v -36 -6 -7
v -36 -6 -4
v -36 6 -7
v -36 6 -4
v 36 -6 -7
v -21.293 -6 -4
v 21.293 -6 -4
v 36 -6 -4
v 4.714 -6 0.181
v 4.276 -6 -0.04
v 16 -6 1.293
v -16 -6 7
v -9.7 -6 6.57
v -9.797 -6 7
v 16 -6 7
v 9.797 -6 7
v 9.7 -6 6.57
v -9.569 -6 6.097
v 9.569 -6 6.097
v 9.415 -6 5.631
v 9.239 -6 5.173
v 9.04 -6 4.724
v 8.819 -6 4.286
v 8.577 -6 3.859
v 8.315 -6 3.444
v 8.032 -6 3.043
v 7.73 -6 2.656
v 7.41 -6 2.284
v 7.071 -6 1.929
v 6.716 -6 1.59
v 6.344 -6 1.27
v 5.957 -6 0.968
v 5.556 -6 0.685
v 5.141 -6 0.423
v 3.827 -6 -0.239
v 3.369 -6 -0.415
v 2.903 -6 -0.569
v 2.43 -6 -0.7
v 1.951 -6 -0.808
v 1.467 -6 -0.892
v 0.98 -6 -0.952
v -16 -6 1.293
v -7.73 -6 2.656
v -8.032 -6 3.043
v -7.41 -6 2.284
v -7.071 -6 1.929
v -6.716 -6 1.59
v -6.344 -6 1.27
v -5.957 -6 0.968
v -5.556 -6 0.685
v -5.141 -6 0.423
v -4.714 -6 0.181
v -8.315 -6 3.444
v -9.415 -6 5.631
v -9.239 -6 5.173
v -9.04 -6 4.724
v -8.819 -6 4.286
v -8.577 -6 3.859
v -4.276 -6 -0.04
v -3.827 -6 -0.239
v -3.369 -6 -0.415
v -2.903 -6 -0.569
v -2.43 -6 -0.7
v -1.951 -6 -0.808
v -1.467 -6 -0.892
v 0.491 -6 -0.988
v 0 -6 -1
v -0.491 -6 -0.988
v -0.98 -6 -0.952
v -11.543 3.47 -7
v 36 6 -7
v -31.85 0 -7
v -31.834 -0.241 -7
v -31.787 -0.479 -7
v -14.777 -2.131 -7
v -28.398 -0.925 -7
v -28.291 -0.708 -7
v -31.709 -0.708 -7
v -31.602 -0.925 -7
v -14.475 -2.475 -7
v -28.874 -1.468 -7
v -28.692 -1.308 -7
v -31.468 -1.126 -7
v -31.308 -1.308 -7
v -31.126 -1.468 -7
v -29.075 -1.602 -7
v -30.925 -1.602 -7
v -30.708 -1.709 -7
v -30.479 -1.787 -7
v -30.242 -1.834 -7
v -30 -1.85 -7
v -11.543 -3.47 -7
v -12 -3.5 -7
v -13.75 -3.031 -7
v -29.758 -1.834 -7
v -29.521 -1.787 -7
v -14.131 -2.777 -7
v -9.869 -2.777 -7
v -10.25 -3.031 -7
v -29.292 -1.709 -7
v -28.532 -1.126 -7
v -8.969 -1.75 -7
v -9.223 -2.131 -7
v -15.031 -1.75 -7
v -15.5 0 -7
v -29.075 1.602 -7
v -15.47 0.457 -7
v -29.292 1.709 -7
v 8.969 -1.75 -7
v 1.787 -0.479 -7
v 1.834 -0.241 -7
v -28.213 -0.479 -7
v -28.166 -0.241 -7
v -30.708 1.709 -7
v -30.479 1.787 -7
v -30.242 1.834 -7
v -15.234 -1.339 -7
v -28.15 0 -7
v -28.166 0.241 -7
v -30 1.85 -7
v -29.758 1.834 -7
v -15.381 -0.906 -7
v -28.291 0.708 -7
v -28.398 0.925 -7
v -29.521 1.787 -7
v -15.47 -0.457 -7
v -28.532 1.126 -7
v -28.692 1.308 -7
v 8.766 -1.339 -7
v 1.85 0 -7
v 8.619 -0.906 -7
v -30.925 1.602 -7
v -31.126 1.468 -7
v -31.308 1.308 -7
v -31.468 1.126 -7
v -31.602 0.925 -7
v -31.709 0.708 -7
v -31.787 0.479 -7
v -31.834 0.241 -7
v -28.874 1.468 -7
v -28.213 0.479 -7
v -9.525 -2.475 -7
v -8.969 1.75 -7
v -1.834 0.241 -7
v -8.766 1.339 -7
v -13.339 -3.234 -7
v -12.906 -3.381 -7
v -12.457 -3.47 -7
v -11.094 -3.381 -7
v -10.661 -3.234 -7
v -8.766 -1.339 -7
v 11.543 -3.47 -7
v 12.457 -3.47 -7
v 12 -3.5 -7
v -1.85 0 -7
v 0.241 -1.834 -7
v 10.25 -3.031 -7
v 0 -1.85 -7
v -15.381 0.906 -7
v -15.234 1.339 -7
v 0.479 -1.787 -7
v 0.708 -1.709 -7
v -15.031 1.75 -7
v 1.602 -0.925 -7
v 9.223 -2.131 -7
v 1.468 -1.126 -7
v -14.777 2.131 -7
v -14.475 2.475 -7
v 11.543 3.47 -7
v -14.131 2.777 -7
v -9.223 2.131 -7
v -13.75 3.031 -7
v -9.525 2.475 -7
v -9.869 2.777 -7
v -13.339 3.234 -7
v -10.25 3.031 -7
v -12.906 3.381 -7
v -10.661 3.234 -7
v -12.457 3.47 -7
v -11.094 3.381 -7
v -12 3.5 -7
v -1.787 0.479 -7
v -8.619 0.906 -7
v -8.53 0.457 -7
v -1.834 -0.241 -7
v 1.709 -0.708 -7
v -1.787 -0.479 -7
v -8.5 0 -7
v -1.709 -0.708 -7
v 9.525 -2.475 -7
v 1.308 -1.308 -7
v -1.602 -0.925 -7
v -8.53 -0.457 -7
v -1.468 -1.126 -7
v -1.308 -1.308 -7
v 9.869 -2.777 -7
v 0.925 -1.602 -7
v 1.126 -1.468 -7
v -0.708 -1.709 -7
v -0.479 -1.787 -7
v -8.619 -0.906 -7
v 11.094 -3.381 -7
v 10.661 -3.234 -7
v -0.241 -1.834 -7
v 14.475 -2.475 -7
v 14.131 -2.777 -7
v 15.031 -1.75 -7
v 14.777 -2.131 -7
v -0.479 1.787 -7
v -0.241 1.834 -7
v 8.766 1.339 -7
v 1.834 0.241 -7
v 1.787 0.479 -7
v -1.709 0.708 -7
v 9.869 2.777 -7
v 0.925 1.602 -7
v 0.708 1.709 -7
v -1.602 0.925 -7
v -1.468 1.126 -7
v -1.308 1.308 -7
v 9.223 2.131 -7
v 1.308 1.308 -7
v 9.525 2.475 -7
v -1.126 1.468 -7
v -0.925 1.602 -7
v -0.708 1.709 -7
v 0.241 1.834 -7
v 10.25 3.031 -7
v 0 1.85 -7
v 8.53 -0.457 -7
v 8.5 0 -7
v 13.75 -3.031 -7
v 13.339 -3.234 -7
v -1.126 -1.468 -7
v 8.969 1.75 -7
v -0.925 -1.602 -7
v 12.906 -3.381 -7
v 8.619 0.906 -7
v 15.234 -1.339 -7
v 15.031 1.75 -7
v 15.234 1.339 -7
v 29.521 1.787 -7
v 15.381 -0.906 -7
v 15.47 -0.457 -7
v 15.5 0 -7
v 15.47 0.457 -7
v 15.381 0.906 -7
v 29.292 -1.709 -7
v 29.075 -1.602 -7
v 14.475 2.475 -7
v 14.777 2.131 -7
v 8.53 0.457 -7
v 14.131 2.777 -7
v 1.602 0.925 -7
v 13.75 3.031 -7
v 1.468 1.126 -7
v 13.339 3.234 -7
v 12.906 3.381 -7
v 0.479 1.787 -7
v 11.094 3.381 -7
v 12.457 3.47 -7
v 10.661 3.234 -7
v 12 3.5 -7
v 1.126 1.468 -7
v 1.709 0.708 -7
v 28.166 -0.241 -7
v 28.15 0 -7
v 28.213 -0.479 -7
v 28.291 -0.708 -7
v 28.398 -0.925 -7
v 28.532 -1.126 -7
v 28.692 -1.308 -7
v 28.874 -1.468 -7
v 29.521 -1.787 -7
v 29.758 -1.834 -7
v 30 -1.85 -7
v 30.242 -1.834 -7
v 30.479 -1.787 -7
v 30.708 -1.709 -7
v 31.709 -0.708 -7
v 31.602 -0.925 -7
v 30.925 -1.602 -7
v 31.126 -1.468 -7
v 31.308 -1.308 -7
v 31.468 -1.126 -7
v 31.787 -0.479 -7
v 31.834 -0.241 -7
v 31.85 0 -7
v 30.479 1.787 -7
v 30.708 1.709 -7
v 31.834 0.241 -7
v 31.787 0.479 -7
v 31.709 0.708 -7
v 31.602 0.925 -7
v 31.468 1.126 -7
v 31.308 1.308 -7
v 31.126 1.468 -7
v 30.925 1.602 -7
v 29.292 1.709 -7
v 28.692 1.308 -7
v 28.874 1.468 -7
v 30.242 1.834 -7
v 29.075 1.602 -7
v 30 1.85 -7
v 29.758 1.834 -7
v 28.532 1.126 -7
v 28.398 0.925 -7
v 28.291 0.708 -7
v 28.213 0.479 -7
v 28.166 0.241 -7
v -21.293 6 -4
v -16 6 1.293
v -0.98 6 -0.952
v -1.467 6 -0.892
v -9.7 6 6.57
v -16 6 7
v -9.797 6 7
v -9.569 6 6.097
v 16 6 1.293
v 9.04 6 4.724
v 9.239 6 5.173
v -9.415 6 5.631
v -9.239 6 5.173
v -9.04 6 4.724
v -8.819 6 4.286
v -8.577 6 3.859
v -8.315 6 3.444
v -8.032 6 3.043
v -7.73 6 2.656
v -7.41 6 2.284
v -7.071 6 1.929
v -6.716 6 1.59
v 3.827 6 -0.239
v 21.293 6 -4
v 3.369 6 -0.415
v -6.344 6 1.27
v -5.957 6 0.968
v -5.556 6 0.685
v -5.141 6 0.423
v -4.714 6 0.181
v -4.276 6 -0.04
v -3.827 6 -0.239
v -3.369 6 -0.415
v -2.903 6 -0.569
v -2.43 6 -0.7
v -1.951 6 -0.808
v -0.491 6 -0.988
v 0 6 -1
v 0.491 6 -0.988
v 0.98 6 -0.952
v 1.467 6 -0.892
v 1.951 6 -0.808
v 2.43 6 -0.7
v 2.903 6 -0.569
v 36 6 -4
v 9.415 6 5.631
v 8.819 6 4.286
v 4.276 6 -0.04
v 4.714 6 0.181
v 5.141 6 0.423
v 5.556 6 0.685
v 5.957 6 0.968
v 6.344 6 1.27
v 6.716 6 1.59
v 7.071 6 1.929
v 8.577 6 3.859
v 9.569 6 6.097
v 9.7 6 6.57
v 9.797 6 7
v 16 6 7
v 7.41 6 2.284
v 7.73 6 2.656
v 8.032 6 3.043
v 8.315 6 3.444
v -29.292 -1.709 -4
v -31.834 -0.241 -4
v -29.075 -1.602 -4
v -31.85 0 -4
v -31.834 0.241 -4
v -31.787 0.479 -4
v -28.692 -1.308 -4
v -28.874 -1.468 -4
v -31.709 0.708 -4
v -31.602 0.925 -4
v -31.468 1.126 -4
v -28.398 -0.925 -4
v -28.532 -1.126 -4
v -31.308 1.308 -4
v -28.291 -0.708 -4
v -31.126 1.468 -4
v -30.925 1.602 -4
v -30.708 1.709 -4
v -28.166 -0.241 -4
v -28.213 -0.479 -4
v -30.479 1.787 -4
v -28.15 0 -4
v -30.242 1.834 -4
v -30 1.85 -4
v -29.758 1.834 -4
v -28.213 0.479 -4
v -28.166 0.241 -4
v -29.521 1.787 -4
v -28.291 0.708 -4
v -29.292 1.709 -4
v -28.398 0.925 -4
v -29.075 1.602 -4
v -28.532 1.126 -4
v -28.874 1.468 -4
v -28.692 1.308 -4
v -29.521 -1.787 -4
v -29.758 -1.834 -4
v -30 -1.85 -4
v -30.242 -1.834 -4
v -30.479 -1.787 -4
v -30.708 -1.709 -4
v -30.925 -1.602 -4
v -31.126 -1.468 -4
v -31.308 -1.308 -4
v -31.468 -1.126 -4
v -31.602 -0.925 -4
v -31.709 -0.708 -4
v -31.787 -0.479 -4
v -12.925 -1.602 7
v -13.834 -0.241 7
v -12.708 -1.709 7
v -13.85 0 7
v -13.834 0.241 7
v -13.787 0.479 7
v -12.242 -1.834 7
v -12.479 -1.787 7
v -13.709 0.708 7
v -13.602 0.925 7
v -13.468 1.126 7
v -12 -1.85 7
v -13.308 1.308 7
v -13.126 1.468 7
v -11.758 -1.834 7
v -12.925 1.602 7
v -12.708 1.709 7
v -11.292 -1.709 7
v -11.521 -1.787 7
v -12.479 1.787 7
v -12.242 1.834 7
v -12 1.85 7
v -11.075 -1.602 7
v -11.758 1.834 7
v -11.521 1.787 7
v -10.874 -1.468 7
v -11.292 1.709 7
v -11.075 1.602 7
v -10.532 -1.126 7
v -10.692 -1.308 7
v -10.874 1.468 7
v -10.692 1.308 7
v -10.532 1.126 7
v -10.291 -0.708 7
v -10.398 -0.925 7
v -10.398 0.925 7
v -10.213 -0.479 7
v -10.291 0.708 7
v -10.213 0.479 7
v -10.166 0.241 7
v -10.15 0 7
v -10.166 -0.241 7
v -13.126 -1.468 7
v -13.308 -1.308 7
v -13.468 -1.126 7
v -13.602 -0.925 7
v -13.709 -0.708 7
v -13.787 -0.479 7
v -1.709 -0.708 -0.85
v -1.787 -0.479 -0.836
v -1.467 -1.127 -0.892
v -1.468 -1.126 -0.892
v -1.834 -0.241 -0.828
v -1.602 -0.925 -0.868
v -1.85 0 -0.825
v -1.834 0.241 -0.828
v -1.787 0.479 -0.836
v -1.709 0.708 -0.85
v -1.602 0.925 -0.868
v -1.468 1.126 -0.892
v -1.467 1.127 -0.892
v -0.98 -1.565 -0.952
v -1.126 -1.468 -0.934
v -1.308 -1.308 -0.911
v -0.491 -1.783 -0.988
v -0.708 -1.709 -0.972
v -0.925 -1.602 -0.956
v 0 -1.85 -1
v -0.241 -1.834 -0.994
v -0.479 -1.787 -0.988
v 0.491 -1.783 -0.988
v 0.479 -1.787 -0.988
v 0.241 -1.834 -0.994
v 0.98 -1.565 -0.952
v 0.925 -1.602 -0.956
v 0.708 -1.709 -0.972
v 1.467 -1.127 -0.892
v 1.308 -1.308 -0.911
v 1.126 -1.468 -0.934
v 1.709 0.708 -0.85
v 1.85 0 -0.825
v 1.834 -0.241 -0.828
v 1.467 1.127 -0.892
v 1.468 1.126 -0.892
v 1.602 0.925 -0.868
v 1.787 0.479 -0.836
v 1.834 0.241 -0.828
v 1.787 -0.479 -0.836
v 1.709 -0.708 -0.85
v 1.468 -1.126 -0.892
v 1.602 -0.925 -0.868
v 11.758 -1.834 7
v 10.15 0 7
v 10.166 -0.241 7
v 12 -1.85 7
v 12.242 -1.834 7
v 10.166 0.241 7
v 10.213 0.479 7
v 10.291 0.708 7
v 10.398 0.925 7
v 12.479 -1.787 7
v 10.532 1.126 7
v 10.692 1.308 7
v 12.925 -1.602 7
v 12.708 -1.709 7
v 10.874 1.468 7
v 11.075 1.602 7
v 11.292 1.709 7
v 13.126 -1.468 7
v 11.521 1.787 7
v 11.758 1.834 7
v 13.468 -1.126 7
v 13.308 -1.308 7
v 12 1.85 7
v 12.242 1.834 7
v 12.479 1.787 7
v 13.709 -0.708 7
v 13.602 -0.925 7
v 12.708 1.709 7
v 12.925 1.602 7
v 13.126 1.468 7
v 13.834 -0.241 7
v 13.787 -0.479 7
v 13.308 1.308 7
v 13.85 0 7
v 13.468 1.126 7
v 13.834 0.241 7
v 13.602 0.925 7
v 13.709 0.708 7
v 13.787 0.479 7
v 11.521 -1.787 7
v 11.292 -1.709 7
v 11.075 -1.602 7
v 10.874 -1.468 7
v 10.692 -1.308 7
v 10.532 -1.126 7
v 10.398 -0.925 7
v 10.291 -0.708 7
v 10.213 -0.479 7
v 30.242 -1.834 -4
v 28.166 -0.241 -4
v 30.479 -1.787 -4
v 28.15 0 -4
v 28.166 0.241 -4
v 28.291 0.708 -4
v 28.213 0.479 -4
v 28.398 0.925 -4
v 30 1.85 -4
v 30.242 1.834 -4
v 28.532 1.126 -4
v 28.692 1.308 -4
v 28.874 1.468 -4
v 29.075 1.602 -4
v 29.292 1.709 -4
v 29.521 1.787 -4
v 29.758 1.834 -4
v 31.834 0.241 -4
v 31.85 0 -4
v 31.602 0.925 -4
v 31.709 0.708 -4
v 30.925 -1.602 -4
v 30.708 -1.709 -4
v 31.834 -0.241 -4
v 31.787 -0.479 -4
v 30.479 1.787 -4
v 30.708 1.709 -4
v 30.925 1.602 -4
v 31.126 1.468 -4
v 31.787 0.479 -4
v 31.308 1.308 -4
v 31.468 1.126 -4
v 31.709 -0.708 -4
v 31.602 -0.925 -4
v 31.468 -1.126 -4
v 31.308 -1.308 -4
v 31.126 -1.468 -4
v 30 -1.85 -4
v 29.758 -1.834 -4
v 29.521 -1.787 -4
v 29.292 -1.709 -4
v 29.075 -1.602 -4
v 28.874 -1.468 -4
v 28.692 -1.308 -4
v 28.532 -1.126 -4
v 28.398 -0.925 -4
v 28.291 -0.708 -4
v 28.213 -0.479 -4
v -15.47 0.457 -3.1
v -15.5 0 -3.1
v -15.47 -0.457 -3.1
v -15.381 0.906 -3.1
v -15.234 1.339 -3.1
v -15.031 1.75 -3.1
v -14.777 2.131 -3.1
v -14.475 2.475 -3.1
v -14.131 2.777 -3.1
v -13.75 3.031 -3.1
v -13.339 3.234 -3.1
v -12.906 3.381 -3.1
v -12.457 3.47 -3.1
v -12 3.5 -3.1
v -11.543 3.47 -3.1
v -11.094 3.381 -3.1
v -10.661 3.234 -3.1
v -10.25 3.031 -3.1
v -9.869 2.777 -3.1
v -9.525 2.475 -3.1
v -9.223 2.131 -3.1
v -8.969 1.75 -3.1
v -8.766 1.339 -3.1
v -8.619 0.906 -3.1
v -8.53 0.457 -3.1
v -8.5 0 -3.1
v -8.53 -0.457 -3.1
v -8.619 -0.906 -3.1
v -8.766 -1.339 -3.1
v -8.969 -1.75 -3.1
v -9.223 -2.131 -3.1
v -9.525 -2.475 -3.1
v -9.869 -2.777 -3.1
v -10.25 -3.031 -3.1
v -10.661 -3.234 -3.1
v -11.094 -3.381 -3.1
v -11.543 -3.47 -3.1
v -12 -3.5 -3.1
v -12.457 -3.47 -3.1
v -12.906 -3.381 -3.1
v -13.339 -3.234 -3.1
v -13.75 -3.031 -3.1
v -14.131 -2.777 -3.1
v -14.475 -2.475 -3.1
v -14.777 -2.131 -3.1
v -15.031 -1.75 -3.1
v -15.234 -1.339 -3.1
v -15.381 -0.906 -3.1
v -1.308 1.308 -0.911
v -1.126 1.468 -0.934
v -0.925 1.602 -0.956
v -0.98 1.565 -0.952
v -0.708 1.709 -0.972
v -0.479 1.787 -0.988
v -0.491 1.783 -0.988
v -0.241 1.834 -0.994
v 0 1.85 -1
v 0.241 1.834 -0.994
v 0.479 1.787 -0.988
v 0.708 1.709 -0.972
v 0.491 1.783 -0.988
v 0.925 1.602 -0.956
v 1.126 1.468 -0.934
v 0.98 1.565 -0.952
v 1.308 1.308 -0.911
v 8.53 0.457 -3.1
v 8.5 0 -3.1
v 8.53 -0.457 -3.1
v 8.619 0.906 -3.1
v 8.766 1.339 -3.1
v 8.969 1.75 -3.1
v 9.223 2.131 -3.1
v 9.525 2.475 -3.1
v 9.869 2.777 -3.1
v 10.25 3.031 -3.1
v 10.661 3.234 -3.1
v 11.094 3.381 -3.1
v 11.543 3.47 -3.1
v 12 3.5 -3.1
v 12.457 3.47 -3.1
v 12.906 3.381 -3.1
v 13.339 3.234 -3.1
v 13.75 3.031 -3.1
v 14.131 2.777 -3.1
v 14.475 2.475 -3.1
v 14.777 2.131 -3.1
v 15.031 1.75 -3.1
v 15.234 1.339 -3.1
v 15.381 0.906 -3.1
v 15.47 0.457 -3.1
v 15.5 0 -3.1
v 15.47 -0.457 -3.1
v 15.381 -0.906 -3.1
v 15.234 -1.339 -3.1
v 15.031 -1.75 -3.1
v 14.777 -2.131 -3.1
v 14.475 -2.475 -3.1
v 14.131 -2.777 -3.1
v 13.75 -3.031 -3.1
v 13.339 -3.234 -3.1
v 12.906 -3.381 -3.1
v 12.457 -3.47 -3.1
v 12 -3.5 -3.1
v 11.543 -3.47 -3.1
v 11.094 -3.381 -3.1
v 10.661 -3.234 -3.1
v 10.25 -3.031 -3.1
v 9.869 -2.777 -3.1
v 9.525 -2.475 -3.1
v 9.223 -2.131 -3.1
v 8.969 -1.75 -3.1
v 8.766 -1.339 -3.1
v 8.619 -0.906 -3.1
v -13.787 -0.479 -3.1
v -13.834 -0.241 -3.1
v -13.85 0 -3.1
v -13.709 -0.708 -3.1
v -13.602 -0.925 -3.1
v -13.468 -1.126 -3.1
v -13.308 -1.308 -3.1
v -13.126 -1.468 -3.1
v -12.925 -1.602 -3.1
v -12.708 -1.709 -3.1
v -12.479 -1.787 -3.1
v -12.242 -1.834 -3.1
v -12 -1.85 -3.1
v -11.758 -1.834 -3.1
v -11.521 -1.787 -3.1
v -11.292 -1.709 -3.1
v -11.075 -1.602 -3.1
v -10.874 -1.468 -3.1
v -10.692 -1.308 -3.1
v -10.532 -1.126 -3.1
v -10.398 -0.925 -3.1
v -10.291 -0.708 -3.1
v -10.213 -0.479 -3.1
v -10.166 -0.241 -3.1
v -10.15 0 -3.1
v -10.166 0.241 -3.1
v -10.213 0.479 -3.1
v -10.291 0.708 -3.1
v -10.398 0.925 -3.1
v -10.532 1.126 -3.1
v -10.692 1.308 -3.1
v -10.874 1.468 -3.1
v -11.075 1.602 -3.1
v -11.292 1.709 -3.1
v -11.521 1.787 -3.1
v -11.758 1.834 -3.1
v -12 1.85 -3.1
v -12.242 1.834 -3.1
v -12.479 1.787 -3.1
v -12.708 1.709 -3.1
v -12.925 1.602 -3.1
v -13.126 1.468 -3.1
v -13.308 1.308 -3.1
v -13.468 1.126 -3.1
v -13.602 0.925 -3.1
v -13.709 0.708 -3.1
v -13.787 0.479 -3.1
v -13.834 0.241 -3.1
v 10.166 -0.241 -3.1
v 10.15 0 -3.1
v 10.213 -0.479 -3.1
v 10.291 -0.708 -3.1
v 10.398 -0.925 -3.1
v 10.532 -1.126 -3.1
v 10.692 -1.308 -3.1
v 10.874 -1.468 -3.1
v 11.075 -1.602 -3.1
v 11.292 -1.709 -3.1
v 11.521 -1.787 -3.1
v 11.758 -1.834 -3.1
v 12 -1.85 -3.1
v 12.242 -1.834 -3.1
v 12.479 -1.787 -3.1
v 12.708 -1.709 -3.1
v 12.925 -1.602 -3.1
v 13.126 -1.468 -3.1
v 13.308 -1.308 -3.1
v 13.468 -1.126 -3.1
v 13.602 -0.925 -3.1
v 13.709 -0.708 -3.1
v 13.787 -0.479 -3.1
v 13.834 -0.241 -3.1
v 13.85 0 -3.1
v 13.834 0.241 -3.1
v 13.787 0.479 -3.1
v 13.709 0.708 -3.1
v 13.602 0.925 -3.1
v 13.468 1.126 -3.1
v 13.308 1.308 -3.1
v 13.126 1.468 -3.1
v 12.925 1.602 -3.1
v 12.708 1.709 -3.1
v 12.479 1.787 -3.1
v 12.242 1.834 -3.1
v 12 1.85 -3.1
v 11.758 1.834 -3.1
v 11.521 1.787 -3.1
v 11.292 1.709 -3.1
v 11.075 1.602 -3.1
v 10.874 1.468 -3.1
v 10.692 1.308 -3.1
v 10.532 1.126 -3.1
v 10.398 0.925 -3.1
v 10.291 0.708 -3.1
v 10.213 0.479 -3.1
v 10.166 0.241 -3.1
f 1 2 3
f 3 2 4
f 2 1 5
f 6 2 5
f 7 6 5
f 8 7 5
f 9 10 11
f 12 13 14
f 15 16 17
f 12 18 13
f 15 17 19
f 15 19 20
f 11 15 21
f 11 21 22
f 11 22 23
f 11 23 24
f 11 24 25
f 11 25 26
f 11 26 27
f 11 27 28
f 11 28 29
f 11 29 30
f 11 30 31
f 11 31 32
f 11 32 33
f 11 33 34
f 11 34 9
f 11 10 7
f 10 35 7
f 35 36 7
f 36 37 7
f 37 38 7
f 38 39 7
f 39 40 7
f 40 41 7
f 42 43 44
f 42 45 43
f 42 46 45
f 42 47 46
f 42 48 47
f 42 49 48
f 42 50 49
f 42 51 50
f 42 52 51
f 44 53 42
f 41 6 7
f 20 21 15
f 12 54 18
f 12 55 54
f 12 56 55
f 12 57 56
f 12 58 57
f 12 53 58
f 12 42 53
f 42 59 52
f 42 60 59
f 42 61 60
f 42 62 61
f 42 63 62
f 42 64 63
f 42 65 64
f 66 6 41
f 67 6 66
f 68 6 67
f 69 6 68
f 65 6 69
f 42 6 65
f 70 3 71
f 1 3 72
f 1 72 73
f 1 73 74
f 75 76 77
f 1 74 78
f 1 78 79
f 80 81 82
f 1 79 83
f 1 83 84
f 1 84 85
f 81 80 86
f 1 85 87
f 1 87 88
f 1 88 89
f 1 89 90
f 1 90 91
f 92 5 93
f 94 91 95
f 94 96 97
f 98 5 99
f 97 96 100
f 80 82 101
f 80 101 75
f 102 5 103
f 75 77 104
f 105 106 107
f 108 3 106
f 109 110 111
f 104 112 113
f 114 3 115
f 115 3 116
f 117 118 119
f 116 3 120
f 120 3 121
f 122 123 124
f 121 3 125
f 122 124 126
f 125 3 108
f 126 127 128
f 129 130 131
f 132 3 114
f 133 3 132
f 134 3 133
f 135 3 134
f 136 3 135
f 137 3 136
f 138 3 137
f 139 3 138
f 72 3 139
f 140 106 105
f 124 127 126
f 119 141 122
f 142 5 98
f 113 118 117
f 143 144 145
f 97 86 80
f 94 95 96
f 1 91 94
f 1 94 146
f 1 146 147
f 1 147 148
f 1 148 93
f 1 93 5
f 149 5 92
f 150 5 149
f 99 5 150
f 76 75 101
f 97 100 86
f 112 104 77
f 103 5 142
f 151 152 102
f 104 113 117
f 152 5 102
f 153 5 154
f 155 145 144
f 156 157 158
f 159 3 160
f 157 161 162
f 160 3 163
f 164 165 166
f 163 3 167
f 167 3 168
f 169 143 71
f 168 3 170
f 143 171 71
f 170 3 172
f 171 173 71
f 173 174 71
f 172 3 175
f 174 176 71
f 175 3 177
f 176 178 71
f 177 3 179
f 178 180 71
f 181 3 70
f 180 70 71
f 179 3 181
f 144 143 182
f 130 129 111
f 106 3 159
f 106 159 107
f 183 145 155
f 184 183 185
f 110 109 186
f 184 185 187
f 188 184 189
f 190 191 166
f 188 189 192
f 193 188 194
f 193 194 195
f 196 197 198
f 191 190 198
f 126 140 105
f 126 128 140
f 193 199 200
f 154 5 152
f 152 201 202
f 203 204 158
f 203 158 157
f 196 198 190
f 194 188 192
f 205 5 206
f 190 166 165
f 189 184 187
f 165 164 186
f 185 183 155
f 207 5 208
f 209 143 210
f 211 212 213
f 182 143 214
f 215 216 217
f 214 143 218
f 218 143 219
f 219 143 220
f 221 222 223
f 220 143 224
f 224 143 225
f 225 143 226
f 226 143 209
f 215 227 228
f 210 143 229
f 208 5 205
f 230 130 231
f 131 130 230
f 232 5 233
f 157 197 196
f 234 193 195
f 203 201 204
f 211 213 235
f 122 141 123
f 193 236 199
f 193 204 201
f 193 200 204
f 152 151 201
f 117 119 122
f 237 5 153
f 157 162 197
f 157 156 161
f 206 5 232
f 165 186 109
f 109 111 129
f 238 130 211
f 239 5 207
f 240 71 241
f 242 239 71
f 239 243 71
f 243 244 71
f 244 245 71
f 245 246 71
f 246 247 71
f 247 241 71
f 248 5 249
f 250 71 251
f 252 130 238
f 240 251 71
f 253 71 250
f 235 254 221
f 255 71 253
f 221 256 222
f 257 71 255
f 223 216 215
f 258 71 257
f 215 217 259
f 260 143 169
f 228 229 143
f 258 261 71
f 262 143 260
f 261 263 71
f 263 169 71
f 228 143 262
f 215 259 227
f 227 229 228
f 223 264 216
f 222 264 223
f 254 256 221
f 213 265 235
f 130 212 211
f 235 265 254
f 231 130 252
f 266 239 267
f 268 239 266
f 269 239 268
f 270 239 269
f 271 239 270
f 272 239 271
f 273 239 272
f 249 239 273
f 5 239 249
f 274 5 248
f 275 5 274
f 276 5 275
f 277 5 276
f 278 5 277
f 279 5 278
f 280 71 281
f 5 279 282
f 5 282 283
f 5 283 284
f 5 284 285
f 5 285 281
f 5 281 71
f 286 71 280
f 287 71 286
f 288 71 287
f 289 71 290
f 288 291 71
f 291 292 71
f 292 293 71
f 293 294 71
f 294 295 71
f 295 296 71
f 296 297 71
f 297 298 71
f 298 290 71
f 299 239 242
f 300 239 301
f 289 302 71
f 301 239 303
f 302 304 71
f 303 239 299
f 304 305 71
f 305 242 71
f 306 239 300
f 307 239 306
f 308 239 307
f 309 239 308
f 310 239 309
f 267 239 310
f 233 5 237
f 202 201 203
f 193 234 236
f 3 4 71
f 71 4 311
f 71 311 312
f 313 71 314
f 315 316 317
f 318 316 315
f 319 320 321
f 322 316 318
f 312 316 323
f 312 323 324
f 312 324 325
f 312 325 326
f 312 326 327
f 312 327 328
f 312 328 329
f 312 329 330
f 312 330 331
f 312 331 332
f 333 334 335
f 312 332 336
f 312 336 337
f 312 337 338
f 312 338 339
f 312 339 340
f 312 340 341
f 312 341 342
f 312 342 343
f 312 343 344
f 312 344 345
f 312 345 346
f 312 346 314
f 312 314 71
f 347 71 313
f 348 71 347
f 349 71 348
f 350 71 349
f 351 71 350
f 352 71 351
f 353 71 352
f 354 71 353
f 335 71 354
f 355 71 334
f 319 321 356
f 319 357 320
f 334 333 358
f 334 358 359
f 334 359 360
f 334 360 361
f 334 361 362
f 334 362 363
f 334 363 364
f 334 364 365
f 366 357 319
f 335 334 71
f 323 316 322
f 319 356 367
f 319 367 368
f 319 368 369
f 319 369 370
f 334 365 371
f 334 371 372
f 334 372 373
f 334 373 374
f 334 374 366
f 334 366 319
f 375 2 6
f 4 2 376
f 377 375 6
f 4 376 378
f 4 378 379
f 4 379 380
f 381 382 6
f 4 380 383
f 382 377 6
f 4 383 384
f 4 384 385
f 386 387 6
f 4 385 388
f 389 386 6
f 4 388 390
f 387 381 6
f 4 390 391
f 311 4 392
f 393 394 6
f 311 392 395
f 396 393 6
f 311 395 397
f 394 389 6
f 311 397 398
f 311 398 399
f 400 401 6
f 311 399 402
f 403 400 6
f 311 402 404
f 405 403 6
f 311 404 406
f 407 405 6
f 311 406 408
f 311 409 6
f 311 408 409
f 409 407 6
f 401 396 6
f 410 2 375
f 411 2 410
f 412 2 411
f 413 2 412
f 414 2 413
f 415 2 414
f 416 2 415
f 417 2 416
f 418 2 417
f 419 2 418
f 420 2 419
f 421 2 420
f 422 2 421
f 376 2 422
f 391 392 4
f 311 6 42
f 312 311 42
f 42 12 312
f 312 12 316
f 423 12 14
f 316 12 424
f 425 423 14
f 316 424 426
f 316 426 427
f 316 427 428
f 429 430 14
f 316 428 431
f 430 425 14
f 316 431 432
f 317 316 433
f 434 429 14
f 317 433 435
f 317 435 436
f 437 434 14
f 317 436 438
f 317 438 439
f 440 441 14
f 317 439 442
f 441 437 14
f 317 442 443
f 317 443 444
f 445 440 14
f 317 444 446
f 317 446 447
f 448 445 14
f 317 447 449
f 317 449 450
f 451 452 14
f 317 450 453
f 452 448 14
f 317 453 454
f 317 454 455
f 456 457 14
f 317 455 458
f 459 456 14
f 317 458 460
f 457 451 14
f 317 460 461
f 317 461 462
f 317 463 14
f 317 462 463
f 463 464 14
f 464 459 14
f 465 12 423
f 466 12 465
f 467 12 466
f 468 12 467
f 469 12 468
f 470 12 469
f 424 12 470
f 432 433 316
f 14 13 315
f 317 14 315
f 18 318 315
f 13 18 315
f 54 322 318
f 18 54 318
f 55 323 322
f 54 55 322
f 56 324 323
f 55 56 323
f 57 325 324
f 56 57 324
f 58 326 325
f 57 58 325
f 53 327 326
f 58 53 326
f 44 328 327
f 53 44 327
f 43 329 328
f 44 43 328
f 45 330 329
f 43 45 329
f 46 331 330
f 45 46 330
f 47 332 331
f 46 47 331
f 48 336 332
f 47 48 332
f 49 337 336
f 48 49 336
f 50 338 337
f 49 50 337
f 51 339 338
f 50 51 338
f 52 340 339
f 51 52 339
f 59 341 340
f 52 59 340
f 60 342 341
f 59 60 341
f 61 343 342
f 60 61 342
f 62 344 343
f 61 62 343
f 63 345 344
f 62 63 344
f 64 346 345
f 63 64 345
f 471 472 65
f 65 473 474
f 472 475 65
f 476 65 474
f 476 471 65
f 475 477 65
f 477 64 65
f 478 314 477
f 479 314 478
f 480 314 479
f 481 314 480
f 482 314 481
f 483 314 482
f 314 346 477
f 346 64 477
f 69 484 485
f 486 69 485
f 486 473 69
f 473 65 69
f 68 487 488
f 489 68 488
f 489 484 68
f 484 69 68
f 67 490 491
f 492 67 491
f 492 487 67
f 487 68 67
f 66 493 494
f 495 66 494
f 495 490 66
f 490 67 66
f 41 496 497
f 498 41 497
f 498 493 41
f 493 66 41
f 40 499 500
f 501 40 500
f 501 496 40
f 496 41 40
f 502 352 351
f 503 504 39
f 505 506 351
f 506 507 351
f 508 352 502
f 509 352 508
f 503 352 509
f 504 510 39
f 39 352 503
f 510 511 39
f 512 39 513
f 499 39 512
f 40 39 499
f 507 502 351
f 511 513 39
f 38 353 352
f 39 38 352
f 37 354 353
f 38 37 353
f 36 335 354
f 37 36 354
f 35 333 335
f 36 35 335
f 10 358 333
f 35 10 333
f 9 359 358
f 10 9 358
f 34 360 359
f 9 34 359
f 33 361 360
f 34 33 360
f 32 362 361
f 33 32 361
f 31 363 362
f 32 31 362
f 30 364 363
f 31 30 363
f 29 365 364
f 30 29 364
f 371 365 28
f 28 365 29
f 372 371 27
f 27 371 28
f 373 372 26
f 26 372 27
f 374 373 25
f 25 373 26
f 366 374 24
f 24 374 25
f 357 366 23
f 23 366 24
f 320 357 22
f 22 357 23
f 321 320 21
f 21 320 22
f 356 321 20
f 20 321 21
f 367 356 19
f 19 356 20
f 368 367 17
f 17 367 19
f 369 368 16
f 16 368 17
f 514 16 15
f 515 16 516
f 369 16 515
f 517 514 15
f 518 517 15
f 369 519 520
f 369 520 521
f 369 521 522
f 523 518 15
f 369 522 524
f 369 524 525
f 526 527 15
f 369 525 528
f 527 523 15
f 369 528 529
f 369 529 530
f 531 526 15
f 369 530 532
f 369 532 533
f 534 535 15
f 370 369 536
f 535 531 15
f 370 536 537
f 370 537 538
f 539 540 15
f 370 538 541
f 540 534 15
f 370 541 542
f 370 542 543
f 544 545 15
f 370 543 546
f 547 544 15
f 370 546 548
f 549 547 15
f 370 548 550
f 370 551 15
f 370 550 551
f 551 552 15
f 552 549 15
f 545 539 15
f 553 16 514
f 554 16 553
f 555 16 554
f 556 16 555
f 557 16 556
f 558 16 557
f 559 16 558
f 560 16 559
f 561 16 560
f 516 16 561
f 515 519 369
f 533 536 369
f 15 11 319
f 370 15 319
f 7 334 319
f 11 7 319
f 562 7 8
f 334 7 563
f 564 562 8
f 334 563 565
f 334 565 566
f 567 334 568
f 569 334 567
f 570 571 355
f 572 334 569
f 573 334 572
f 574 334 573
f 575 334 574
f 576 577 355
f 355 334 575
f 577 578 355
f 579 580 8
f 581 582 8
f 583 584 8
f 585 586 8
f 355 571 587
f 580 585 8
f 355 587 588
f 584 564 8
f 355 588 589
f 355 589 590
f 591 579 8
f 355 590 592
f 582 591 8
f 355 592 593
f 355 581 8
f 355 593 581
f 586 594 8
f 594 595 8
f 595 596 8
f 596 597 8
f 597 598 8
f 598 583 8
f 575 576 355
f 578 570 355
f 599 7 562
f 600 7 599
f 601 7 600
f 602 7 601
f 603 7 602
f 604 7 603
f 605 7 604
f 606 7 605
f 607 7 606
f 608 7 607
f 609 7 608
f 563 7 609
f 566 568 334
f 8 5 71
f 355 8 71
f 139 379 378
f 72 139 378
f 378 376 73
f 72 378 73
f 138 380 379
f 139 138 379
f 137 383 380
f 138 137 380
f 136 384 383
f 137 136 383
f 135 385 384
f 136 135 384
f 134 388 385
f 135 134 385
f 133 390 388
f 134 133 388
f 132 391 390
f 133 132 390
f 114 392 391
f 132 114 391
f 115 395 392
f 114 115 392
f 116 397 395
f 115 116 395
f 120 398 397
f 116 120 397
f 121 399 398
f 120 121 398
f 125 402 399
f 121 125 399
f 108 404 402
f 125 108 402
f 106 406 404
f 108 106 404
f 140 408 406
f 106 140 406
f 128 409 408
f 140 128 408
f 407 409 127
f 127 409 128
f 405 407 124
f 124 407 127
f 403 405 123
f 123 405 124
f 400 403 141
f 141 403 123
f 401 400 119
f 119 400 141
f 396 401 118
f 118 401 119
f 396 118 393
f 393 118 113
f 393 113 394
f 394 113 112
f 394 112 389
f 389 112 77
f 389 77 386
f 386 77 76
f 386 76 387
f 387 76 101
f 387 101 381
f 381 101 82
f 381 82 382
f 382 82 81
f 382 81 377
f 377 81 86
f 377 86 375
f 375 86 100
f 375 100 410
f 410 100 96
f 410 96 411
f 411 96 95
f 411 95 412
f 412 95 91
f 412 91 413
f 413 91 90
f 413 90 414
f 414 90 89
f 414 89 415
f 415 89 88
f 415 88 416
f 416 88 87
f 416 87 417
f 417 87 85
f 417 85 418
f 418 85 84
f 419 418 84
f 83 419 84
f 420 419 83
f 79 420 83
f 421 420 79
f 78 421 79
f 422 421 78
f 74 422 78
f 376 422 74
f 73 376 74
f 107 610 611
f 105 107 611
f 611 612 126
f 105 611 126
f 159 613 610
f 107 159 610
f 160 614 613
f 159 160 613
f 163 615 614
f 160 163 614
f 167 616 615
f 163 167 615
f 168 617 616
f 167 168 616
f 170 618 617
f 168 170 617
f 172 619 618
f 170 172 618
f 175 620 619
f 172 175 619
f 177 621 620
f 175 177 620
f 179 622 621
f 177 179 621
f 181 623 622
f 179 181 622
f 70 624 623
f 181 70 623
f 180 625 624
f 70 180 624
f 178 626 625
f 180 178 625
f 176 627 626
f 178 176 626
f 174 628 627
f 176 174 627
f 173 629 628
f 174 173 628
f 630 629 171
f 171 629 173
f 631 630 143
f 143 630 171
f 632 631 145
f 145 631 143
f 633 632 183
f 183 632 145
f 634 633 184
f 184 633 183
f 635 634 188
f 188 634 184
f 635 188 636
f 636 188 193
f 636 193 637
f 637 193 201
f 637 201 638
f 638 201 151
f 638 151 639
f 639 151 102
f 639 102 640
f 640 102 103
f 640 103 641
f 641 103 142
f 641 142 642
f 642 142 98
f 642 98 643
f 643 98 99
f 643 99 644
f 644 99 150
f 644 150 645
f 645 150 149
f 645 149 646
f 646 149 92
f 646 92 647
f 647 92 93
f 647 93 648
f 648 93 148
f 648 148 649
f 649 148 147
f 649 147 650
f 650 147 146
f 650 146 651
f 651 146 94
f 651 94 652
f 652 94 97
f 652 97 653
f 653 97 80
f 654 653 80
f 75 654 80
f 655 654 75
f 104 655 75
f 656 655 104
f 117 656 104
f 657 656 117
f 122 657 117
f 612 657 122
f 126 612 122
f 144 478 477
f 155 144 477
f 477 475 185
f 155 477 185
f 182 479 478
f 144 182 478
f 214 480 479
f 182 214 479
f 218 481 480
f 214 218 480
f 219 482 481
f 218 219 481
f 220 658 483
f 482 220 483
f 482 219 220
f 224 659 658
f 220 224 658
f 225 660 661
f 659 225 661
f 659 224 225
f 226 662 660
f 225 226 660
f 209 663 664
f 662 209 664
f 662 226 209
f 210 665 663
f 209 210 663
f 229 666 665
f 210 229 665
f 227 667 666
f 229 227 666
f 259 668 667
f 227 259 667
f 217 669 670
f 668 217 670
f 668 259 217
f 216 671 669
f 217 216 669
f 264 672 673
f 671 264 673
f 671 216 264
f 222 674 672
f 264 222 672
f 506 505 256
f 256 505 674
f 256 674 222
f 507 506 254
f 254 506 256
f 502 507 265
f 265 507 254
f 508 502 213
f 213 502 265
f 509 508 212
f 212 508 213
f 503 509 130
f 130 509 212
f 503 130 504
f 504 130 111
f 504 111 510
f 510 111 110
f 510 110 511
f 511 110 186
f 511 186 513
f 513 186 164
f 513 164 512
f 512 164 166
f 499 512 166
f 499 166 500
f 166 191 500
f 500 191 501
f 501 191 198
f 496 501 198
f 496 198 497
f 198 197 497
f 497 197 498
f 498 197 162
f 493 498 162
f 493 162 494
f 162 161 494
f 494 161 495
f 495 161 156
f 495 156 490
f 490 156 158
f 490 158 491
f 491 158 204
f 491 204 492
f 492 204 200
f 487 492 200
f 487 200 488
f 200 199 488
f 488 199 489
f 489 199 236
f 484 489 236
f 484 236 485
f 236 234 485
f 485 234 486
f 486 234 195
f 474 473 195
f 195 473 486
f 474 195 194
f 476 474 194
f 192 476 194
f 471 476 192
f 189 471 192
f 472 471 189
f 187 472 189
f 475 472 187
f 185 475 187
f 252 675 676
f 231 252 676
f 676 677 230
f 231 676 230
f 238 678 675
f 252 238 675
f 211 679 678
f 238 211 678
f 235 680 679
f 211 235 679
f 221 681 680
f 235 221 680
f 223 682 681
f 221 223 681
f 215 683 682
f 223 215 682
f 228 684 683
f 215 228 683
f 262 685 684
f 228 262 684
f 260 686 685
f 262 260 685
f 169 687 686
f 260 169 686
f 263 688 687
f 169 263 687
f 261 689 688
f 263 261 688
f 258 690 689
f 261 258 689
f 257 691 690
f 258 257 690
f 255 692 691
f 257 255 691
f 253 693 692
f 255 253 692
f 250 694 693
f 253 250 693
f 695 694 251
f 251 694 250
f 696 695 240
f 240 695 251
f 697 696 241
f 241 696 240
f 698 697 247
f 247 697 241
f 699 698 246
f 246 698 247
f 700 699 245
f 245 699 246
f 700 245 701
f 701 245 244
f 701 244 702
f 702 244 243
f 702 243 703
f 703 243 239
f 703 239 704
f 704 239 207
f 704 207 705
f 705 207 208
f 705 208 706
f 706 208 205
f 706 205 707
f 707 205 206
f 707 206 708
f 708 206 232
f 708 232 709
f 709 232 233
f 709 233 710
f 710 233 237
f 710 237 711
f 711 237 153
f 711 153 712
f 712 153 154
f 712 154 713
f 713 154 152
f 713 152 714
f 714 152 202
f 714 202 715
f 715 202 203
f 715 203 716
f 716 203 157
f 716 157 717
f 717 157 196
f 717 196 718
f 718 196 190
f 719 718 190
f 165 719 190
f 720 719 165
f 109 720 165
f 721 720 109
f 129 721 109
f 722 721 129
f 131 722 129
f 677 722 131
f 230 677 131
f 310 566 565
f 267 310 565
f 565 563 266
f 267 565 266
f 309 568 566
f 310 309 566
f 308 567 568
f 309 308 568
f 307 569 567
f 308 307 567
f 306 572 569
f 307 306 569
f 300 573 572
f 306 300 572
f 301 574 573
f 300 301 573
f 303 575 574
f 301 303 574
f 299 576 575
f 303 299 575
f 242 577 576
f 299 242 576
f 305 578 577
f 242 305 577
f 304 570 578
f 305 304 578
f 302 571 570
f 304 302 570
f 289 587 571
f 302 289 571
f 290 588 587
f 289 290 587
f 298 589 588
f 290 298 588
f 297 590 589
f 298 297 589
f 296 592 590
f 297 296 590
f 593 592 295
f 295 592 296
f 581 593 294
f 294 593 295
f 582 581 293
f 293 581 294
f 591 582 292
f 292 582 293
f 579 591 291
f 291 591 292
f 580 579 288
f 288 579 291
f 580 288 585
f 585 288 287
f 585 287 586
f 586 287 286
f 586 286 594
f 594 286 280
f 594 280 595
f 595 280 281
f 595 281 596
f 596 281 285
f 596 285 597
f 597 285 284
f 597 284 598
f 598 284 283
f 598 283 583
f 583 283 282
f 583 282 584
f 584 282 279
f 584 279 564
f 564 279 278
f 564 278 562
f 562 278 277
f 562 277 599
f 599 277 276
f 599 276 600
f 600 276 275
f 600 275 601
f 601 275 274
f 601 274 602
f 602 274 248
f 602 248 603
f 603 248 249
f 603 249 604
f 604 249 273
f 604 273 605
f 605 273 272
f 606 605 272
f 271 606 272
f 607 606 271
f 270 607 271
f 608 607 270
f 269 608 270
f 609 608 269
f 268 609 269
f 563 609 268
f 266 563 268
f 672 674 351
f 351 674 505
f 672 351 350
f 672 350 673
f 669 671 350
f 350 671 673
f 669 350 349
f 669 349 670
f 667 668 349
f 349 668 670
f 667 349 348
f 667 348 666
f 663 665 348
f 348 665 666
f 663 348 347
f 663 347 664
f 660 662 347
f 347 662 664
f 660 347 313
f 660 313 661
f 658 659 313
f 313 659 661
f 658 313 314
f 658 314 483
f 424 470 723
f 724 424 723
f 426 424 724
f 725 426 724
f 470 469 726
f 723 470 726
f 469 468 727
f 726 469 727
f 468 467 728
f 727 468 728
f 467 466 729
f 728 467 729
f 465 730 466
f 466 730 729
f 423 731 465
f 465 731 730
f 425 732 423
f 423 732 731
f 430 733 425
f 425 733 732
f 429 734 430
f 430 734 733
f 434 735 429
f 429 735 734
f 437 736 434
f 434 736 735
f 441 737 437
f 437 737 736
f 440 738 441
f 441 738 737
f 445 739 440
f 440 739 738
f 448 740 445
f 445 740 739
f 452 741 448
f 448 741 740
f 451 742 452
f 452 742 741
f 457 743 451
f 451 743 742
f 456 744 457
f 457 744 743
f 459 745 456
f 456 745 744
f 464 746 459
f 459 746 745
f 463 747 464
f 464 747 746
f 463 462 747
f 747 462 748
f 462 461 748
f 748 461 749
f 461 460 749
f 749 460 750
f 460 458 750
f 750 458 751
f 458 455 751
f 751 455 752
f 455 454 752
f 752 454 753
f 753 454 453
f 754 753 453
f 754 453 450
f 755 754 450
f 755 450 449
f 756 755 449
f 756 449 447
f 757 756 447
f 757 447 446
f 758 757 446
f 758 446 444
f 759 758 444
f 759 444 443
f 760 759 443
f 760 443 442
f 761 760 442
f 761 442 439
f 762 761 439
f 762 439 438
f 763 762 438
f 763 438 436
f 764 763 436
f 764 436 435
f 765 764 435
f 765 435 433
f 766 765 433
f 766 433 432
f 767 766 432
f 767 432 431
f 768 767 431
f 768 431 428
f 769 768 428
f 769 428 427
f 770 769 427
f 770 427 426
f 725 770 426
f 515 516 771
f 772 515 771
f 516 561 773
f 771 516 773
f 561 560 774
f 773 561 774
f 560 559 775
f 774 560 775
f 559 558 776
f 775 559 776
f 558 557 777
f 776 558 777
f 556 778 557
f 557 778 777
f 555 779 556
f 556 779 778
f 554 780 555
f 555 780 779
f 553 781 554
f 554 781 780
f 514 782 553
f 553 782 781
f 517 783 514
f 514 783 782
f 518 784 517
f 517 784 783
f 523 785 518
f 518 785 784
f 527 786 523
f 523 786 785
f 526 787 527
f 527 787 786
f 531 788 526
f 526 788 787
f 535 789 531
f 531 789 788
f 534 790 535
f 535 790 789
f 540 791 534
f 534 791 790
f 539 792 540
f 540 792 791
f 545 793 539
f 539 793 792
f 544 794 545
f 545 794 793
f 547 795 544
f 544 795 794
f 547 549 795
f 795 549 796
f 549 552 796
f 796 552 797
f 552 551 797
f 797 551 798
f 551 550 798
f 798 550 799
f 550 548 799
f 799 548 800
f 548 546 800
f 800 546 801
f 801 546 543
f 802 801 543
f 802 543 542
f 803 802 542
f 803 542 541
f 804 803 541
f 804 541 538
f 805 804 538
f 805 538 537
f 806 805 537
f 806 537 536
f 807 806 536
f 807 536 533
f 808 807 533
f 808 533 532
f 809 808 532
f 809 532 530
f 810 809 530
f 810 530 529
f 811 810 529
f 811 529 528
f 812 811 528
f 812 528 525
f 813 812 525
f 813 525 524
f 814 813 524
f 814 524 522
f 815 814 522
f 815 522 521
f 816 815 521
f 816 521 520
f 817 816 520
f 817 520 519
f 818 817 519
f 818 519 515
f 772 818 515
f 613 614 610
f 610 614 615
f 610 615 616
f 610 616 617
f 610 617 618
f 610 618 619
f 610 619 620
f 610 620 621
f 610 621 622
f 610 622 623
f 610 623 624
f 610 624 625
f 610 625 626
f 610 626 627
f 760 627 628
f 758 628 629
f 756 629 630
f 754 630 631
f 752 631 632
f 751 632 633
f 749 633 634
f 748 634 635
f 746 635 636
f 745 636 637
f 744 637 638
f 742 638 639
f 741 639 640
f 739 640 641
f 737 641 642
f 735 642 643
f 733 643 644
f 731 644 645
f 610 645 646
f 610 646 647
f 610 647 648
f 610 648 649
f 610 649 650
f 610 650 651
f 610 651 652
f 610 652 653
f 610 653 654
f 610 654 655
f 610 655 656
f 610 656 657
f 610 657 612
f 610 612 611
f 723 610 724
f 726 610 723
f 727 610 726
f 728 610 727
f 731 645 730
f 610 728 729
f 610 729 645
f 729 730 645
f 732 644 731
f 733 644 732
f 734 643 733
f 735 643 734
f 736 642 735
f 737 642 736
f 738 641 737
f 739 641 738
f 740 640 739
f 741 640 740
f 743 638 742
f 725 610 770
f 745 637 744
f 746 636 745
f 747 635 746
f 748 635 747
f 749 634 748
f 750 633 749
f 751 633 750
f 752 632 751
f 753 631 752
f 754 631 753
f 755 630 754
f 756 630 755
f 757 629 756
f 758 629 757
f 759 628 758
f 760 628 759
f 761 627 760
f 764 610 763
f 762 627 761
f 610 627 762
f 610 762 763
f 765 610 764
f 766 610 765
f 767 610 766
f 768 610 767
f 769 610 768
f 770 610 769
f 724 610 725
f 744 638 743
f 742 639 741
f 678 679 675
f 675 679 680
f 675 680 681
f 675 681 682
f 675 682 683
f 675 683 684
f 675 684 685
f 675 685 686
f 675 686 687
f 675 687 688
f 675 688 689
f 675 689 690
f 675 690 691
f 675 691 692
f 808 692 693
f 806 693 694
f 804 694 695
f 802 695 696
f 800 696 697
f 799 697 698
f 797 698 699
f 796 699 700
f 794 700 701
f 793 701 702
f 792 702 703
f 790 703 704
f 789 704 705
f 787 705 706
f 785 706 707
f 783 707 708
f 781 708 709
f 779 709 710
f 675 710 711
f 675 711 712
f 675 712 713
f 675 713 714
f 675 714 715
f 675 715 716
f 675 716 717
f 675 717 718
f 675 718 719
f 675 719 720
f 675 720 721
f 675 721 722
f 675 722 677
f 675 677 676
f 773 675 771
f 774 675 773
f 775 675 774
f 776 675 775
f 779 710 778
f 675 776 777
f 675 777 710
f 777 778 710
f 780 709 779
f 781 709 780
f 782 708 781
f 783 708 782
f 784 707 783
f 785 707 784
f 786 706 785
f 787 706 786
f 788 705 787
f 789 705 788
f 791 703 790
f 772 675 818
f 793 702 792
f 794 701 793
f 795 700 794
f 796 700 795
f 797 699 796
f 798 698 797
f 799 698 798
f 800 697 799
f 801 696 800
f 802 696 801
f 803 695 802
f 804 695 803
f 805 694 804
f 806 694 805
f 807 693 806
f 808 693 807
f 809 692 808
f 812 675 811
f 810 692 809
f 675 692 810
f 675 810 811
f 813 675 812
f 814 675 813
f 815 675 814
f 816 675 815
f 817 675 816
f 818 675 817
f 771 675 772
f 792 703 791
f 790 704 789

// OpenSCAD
module clamp_body()
{
screw_hole_r=1.85; // for 3.5mm screws
screw_head_r=3.5;
  difference()
    {
    // main body around spar hole
    union()
      {
      cube([32,12,14], center=true);
      translate([0,0,-5.5])
      cube([72,12,3], center=true);
      // butresses
      translate([18,0,0])
      difference(){
        cube([10,12,10], center=true);
        rotate(45,[0,1,0])
        translate([0,0,4.5])
        cube([20,13,10], center=true);
        }
      mirror([1,0,0]){
        translate([18,0,0])
        difference(){
          cube([10,12,10], center=true);
          rotate(45,[0,1,0])
          translate([0,0,4.5])
          cube([20,13,10], center=true);
          }
        }
      }
   union()
      {
      translate([0,0,9])
        // main notch for spar
        rotate(90,[1,0,0])
        cylinder(h=50, r=10, center=true,$fn=128);

      // centre hole for bolting through spar
      cylinder(h=40,r=screw_hole_r,center=true,$fn=48);

      // Holes along side rails for bolting alongside spar
      translate([12,0,-20])
      cylinder(h=40,r=screw_hole_r,centre=true,$fn=48);
      translate([-12,0,-20])
      cylinder(h=40,r=screw_hole_r,centre=true,$fn=48);

      // Screw head holes (wider than screw holes)
      translate([12,0,-7.1])
      cylinder(h=4,r=screw_head_r,centre=true,$fn=48);
      translate([-12,0,-7.1])
      cylinder(h=4,r=screw_head_r,centre=true,$fn=48);

      // Holes in bottom plate for bolting to fuselage
      translate([-30,0,-20])
      cylinder(h=40,r=screw_hole_r,centre=true,$fn=48);
      translate([30,0,-20])
      cylinder(h=40,r=screw_hole_r,centre=true,$fn=48);
    }
  }
 
}

module bottom_plate()
{

}

clamp_body();
bottom_plate();
